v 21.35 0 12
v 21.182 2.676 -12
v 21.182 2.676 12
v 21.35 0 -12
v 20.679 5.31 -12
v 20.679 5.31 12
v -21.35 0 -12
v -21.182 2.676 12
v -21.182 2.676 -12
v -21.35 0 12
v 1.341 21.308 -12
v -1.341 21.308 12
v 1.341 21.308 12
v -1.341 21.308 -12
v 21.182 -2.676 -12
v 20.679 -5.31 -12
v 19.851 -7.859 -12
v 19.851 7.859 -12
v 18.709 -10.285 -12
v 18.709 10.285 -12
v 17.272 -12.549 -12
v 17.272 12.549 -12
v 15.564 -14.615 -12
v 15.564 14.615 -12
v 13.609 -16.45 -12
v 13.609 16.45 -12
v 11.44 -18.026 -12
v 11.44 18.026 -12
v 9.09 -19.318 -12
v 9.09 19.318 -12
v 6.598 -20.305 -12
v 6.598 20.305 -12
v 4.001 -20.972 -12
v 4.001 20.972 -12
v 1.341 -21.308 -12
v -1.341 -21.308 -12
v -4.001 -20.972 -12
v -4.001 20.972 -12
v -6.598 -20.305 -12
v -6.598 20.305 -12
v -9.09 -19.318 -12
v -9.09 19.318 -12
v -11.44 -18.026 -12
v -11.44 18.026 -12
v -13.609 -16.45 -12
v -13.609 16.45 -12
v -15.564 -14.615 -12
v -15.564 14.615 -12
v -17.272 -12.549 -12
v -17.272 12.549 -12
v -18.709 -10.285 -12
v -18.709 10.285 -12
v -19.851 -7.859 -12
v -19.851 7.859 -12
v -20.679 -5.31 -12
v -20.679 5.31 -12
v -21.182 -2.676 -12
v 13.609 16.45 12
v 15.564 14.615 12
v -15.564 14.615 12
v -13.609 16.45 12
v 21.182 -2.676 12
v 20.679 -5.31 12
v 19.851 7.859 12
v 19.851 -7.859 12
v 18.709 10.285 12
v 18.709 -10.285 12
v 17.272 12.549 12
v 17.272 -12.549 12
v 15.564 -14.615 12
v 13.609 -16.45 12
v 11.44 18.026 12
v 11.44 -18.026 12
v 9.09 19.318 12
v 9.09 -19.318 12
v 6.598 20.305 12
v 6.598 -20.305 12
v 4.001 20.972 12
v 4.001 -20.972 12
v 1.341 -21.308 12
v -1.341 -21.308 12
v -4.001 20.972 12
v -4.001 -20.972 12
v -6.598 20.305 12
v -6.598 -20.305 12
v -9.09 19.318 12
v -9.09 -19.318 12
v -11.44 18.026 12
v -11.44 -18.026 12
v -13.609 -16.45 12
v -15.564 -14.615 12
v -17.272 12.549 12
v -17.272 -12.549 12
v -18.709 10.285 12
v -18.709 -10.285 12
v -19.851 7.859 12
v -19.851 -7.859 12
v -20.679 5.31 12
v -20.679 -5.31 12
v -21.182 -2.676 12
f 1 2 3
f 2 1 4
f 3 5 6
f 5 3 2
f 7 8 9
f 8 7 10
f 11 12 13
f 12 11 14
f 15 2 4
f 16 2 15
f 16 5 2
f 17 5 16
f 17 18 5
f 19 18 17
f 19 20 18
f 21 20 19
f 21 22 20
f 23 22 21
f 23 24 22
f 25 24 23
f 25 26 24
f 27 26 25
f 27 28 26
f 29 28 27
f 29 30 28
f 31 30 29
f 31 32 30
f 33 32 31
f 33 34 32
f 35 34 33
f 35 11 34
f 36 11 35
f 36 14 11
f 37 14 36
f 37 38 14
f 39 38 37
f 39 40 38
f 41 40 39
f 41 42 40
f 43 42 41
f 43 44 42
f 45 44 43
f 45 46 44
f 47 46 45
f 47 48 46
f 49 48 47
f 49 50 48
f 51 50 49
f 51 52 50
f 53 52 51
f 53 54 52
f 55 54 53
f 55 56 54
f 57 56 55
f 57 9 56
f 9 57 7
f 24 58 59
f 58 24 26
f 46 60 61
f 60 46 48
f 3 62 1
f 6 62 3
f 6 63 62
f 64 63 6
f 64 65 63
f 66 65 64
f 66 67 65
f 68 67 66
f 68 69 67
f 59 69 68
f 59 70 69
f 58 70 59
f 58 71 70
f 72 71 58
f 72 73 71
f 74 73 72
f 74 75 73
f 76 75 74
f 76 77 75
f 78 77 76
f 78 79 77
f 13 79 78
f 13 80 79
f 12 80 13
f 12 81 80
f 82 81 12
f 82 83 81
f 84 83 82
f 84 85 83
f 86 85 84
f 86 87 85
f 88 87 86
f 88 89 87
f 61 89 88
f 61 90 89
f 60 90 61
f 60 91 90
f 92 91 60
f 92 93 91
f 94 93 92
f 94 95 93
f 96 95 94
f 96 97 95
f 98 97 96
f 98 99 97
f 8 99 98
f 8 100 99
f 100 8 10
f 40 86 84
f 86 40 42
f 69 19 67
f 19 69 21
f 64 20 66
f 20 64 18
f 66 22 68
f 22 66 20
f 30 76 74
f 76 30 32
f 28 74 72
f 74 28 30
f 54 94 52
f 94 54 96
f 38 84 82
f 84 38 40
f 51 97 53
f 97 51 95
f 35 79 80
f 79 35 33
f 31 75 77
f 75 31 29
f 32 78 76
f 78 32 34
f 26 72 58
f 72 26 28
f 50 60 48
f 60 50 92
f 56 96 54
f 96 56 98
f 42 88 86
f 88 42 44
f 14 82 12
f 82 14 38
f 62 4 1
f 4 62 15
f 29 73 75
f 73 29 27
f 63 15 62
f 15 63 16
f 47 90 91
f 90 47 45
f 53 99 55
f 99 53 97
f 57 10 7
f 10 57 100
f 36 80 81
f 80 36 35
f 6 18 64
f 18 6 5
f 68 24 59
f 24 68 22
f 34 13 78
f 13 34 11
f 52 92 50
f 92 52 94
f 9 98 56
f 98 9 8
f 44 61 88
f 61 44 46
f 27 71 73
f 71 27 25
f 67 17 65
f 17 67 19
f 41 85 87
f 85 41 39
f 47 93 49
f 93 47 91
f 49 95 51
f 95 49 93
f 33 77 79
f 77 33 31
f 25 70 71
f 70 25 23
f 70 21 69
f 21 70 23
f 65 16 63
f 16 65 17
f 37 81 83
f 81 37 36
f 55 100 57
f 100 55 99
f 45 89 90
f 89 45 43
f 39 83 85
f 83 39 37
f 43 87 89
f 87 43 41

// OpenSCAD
$fn = 50;


difference() {
	union() {
		translate(v = [0, 0, -12.0000000000]) {
			cylinder(h = 24, r = 21.3500000000);
		}
	}
	union() {
		translate(v = [0, 0, -100.0000000000]) {
			cylinder(h = 200, r = 0);
		}
	}
}
